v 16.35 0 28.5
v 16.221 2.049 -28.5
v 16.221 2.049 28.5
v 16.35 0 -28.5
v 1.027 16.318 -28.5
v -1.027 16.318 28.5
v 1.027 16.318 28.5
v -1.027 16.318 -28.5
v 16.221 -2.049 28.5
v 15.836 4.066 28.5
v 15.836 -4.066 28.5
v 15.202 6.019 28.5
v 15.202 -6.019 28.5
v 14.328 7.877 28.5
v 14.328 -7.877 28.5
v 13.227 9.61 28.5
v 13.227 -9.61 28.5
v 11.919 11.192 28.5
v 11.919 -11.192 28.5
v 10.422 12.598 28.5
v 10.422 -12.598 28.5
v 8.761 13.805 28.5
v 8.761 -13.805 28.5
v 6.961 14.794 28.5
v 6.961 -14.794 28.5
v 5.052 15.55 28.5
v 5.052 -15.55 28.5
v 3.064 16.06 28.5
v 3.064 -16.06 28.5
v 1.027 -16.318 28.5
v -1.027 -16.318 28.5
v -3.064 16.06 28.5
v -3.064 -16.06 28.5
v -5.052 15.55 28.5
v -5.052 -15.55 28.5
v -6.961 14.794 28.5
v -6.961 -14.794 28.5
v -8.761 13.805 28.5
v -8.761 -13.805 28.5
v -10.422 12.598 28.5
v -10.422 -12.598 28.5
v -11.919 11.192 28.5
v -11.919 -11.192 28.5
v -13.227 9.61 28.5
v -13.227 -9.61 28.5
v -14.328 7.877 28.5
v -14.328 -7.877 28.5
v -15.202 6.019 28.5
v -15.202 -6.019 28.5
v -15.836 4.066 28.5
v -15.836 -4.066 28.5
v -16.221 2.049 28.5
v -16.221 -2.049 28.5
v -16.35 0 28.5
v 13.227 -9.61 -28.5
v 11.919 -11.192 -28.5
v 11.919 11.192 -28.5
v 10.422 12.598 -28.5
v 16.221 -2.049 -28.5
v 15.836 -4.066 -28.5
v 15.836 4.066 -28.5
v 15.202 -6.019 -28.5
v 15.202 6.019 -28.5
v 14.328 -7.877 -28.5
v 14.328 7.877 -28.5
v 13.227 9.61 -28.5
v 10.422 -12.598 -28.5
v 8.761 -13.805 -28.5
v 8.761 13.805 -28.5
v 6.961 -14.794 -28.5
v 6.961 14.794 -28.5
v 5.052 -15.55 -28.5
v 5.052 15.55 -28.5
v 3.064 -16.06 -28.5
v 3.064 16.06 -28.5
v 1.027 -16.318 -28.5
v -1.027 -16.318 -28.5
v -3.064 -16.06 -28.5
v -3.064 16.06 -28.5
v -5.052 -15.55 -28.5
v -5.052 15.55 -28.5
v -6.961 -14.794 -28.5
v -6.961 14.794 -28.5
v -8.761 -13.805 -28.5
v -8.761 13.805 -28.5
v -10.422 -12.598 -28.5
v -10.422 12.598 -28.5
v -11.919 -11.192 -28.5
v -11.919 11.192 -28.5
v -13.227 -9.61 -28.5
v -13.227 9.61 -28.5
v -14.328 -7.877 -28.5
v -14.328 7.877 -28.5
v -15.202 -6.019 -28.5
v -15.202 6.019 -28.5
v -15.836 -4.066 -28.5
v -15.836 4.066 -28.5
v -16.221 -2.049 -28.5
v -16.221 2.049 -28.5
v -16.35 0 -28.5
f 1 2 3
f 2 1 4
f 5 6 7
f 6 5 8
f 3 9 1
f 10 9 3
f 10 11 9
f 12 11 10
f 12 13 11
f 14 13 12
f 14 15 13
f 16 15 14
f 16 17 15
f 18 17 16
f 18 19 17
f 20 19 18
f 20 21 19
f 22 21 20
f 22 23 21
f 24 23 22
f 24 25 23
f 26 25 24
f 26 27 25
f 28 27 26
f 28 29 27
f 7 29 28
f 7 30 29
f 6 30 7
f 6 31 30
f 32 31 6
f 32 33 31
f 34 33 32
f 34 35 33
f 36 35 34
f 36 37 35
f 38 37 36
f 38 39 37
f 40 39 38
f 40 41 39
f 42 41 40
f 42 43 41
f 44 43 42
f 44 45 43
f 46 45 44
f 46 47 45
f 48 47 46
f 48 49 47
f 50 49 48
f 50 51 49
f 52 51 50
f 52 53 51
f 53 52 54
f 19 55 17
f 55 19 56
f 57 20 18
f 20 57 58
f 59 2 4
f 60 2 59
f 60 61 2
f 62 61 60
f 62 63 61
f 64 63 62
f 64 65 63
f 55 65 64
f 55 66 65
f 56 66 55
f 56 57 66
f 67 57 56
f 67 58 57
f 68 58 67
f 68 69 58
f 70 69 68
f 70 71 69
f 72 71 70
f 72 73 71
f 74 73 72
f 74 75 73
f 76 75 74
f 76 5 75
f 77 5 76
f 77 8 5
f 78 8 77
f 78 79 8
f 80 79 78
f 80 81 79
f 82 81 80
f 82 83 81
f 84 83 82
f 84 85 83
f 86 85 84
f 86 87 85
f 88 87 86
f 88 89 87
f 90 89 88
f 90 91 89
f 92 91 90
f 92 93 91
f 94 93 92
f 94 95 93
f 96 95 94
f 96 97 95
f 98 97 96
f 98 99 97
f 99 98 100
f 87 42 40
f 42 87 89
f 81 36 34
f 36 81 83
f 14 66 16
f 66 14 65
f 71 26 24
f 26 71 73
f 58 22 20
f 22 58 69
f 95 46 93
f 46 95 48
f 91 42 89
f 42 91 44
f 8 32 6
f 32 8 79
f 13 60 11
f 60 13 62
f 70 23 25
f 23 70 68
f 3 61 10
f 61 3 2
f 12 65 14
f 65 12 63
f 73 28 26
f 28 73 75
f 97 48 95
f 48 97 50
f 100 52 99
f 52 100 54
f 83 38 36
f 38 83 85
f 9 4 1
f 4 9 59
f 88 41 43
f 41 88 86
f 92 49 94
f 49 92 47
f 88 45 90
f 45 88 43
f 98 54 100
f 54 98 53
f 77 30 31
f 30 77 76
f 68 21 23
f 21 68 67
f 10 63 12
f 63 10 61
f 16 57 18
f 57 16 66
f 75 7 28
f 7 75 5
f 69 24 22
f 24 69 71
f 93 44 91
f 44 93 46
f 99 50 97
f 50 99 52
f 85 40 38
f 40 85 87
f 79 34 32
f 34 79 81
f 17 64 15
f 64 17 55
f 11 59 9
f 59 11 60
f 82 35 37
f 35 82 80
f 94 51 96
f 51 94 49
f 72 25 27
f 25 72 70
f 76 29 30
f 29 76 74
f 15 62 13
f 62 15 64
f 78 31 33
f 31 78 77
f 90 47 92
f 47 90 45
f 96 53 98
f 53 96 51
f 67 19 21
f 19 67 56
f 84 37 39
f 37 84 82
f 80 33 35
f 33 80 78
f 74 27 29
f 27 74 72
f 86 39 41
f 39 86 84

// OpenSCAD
$fn = 50;


difference() {
	union() {
		translate(v = [0, 0, -28.5000000000]) {
			cylinder(h = 57, r = 16.3500000000);
		}
	}
	union() {
		translate(v = [0, 0, -100.0000000000]) {
			cylinder(h = 200, r = 0);
		}
	}
}
